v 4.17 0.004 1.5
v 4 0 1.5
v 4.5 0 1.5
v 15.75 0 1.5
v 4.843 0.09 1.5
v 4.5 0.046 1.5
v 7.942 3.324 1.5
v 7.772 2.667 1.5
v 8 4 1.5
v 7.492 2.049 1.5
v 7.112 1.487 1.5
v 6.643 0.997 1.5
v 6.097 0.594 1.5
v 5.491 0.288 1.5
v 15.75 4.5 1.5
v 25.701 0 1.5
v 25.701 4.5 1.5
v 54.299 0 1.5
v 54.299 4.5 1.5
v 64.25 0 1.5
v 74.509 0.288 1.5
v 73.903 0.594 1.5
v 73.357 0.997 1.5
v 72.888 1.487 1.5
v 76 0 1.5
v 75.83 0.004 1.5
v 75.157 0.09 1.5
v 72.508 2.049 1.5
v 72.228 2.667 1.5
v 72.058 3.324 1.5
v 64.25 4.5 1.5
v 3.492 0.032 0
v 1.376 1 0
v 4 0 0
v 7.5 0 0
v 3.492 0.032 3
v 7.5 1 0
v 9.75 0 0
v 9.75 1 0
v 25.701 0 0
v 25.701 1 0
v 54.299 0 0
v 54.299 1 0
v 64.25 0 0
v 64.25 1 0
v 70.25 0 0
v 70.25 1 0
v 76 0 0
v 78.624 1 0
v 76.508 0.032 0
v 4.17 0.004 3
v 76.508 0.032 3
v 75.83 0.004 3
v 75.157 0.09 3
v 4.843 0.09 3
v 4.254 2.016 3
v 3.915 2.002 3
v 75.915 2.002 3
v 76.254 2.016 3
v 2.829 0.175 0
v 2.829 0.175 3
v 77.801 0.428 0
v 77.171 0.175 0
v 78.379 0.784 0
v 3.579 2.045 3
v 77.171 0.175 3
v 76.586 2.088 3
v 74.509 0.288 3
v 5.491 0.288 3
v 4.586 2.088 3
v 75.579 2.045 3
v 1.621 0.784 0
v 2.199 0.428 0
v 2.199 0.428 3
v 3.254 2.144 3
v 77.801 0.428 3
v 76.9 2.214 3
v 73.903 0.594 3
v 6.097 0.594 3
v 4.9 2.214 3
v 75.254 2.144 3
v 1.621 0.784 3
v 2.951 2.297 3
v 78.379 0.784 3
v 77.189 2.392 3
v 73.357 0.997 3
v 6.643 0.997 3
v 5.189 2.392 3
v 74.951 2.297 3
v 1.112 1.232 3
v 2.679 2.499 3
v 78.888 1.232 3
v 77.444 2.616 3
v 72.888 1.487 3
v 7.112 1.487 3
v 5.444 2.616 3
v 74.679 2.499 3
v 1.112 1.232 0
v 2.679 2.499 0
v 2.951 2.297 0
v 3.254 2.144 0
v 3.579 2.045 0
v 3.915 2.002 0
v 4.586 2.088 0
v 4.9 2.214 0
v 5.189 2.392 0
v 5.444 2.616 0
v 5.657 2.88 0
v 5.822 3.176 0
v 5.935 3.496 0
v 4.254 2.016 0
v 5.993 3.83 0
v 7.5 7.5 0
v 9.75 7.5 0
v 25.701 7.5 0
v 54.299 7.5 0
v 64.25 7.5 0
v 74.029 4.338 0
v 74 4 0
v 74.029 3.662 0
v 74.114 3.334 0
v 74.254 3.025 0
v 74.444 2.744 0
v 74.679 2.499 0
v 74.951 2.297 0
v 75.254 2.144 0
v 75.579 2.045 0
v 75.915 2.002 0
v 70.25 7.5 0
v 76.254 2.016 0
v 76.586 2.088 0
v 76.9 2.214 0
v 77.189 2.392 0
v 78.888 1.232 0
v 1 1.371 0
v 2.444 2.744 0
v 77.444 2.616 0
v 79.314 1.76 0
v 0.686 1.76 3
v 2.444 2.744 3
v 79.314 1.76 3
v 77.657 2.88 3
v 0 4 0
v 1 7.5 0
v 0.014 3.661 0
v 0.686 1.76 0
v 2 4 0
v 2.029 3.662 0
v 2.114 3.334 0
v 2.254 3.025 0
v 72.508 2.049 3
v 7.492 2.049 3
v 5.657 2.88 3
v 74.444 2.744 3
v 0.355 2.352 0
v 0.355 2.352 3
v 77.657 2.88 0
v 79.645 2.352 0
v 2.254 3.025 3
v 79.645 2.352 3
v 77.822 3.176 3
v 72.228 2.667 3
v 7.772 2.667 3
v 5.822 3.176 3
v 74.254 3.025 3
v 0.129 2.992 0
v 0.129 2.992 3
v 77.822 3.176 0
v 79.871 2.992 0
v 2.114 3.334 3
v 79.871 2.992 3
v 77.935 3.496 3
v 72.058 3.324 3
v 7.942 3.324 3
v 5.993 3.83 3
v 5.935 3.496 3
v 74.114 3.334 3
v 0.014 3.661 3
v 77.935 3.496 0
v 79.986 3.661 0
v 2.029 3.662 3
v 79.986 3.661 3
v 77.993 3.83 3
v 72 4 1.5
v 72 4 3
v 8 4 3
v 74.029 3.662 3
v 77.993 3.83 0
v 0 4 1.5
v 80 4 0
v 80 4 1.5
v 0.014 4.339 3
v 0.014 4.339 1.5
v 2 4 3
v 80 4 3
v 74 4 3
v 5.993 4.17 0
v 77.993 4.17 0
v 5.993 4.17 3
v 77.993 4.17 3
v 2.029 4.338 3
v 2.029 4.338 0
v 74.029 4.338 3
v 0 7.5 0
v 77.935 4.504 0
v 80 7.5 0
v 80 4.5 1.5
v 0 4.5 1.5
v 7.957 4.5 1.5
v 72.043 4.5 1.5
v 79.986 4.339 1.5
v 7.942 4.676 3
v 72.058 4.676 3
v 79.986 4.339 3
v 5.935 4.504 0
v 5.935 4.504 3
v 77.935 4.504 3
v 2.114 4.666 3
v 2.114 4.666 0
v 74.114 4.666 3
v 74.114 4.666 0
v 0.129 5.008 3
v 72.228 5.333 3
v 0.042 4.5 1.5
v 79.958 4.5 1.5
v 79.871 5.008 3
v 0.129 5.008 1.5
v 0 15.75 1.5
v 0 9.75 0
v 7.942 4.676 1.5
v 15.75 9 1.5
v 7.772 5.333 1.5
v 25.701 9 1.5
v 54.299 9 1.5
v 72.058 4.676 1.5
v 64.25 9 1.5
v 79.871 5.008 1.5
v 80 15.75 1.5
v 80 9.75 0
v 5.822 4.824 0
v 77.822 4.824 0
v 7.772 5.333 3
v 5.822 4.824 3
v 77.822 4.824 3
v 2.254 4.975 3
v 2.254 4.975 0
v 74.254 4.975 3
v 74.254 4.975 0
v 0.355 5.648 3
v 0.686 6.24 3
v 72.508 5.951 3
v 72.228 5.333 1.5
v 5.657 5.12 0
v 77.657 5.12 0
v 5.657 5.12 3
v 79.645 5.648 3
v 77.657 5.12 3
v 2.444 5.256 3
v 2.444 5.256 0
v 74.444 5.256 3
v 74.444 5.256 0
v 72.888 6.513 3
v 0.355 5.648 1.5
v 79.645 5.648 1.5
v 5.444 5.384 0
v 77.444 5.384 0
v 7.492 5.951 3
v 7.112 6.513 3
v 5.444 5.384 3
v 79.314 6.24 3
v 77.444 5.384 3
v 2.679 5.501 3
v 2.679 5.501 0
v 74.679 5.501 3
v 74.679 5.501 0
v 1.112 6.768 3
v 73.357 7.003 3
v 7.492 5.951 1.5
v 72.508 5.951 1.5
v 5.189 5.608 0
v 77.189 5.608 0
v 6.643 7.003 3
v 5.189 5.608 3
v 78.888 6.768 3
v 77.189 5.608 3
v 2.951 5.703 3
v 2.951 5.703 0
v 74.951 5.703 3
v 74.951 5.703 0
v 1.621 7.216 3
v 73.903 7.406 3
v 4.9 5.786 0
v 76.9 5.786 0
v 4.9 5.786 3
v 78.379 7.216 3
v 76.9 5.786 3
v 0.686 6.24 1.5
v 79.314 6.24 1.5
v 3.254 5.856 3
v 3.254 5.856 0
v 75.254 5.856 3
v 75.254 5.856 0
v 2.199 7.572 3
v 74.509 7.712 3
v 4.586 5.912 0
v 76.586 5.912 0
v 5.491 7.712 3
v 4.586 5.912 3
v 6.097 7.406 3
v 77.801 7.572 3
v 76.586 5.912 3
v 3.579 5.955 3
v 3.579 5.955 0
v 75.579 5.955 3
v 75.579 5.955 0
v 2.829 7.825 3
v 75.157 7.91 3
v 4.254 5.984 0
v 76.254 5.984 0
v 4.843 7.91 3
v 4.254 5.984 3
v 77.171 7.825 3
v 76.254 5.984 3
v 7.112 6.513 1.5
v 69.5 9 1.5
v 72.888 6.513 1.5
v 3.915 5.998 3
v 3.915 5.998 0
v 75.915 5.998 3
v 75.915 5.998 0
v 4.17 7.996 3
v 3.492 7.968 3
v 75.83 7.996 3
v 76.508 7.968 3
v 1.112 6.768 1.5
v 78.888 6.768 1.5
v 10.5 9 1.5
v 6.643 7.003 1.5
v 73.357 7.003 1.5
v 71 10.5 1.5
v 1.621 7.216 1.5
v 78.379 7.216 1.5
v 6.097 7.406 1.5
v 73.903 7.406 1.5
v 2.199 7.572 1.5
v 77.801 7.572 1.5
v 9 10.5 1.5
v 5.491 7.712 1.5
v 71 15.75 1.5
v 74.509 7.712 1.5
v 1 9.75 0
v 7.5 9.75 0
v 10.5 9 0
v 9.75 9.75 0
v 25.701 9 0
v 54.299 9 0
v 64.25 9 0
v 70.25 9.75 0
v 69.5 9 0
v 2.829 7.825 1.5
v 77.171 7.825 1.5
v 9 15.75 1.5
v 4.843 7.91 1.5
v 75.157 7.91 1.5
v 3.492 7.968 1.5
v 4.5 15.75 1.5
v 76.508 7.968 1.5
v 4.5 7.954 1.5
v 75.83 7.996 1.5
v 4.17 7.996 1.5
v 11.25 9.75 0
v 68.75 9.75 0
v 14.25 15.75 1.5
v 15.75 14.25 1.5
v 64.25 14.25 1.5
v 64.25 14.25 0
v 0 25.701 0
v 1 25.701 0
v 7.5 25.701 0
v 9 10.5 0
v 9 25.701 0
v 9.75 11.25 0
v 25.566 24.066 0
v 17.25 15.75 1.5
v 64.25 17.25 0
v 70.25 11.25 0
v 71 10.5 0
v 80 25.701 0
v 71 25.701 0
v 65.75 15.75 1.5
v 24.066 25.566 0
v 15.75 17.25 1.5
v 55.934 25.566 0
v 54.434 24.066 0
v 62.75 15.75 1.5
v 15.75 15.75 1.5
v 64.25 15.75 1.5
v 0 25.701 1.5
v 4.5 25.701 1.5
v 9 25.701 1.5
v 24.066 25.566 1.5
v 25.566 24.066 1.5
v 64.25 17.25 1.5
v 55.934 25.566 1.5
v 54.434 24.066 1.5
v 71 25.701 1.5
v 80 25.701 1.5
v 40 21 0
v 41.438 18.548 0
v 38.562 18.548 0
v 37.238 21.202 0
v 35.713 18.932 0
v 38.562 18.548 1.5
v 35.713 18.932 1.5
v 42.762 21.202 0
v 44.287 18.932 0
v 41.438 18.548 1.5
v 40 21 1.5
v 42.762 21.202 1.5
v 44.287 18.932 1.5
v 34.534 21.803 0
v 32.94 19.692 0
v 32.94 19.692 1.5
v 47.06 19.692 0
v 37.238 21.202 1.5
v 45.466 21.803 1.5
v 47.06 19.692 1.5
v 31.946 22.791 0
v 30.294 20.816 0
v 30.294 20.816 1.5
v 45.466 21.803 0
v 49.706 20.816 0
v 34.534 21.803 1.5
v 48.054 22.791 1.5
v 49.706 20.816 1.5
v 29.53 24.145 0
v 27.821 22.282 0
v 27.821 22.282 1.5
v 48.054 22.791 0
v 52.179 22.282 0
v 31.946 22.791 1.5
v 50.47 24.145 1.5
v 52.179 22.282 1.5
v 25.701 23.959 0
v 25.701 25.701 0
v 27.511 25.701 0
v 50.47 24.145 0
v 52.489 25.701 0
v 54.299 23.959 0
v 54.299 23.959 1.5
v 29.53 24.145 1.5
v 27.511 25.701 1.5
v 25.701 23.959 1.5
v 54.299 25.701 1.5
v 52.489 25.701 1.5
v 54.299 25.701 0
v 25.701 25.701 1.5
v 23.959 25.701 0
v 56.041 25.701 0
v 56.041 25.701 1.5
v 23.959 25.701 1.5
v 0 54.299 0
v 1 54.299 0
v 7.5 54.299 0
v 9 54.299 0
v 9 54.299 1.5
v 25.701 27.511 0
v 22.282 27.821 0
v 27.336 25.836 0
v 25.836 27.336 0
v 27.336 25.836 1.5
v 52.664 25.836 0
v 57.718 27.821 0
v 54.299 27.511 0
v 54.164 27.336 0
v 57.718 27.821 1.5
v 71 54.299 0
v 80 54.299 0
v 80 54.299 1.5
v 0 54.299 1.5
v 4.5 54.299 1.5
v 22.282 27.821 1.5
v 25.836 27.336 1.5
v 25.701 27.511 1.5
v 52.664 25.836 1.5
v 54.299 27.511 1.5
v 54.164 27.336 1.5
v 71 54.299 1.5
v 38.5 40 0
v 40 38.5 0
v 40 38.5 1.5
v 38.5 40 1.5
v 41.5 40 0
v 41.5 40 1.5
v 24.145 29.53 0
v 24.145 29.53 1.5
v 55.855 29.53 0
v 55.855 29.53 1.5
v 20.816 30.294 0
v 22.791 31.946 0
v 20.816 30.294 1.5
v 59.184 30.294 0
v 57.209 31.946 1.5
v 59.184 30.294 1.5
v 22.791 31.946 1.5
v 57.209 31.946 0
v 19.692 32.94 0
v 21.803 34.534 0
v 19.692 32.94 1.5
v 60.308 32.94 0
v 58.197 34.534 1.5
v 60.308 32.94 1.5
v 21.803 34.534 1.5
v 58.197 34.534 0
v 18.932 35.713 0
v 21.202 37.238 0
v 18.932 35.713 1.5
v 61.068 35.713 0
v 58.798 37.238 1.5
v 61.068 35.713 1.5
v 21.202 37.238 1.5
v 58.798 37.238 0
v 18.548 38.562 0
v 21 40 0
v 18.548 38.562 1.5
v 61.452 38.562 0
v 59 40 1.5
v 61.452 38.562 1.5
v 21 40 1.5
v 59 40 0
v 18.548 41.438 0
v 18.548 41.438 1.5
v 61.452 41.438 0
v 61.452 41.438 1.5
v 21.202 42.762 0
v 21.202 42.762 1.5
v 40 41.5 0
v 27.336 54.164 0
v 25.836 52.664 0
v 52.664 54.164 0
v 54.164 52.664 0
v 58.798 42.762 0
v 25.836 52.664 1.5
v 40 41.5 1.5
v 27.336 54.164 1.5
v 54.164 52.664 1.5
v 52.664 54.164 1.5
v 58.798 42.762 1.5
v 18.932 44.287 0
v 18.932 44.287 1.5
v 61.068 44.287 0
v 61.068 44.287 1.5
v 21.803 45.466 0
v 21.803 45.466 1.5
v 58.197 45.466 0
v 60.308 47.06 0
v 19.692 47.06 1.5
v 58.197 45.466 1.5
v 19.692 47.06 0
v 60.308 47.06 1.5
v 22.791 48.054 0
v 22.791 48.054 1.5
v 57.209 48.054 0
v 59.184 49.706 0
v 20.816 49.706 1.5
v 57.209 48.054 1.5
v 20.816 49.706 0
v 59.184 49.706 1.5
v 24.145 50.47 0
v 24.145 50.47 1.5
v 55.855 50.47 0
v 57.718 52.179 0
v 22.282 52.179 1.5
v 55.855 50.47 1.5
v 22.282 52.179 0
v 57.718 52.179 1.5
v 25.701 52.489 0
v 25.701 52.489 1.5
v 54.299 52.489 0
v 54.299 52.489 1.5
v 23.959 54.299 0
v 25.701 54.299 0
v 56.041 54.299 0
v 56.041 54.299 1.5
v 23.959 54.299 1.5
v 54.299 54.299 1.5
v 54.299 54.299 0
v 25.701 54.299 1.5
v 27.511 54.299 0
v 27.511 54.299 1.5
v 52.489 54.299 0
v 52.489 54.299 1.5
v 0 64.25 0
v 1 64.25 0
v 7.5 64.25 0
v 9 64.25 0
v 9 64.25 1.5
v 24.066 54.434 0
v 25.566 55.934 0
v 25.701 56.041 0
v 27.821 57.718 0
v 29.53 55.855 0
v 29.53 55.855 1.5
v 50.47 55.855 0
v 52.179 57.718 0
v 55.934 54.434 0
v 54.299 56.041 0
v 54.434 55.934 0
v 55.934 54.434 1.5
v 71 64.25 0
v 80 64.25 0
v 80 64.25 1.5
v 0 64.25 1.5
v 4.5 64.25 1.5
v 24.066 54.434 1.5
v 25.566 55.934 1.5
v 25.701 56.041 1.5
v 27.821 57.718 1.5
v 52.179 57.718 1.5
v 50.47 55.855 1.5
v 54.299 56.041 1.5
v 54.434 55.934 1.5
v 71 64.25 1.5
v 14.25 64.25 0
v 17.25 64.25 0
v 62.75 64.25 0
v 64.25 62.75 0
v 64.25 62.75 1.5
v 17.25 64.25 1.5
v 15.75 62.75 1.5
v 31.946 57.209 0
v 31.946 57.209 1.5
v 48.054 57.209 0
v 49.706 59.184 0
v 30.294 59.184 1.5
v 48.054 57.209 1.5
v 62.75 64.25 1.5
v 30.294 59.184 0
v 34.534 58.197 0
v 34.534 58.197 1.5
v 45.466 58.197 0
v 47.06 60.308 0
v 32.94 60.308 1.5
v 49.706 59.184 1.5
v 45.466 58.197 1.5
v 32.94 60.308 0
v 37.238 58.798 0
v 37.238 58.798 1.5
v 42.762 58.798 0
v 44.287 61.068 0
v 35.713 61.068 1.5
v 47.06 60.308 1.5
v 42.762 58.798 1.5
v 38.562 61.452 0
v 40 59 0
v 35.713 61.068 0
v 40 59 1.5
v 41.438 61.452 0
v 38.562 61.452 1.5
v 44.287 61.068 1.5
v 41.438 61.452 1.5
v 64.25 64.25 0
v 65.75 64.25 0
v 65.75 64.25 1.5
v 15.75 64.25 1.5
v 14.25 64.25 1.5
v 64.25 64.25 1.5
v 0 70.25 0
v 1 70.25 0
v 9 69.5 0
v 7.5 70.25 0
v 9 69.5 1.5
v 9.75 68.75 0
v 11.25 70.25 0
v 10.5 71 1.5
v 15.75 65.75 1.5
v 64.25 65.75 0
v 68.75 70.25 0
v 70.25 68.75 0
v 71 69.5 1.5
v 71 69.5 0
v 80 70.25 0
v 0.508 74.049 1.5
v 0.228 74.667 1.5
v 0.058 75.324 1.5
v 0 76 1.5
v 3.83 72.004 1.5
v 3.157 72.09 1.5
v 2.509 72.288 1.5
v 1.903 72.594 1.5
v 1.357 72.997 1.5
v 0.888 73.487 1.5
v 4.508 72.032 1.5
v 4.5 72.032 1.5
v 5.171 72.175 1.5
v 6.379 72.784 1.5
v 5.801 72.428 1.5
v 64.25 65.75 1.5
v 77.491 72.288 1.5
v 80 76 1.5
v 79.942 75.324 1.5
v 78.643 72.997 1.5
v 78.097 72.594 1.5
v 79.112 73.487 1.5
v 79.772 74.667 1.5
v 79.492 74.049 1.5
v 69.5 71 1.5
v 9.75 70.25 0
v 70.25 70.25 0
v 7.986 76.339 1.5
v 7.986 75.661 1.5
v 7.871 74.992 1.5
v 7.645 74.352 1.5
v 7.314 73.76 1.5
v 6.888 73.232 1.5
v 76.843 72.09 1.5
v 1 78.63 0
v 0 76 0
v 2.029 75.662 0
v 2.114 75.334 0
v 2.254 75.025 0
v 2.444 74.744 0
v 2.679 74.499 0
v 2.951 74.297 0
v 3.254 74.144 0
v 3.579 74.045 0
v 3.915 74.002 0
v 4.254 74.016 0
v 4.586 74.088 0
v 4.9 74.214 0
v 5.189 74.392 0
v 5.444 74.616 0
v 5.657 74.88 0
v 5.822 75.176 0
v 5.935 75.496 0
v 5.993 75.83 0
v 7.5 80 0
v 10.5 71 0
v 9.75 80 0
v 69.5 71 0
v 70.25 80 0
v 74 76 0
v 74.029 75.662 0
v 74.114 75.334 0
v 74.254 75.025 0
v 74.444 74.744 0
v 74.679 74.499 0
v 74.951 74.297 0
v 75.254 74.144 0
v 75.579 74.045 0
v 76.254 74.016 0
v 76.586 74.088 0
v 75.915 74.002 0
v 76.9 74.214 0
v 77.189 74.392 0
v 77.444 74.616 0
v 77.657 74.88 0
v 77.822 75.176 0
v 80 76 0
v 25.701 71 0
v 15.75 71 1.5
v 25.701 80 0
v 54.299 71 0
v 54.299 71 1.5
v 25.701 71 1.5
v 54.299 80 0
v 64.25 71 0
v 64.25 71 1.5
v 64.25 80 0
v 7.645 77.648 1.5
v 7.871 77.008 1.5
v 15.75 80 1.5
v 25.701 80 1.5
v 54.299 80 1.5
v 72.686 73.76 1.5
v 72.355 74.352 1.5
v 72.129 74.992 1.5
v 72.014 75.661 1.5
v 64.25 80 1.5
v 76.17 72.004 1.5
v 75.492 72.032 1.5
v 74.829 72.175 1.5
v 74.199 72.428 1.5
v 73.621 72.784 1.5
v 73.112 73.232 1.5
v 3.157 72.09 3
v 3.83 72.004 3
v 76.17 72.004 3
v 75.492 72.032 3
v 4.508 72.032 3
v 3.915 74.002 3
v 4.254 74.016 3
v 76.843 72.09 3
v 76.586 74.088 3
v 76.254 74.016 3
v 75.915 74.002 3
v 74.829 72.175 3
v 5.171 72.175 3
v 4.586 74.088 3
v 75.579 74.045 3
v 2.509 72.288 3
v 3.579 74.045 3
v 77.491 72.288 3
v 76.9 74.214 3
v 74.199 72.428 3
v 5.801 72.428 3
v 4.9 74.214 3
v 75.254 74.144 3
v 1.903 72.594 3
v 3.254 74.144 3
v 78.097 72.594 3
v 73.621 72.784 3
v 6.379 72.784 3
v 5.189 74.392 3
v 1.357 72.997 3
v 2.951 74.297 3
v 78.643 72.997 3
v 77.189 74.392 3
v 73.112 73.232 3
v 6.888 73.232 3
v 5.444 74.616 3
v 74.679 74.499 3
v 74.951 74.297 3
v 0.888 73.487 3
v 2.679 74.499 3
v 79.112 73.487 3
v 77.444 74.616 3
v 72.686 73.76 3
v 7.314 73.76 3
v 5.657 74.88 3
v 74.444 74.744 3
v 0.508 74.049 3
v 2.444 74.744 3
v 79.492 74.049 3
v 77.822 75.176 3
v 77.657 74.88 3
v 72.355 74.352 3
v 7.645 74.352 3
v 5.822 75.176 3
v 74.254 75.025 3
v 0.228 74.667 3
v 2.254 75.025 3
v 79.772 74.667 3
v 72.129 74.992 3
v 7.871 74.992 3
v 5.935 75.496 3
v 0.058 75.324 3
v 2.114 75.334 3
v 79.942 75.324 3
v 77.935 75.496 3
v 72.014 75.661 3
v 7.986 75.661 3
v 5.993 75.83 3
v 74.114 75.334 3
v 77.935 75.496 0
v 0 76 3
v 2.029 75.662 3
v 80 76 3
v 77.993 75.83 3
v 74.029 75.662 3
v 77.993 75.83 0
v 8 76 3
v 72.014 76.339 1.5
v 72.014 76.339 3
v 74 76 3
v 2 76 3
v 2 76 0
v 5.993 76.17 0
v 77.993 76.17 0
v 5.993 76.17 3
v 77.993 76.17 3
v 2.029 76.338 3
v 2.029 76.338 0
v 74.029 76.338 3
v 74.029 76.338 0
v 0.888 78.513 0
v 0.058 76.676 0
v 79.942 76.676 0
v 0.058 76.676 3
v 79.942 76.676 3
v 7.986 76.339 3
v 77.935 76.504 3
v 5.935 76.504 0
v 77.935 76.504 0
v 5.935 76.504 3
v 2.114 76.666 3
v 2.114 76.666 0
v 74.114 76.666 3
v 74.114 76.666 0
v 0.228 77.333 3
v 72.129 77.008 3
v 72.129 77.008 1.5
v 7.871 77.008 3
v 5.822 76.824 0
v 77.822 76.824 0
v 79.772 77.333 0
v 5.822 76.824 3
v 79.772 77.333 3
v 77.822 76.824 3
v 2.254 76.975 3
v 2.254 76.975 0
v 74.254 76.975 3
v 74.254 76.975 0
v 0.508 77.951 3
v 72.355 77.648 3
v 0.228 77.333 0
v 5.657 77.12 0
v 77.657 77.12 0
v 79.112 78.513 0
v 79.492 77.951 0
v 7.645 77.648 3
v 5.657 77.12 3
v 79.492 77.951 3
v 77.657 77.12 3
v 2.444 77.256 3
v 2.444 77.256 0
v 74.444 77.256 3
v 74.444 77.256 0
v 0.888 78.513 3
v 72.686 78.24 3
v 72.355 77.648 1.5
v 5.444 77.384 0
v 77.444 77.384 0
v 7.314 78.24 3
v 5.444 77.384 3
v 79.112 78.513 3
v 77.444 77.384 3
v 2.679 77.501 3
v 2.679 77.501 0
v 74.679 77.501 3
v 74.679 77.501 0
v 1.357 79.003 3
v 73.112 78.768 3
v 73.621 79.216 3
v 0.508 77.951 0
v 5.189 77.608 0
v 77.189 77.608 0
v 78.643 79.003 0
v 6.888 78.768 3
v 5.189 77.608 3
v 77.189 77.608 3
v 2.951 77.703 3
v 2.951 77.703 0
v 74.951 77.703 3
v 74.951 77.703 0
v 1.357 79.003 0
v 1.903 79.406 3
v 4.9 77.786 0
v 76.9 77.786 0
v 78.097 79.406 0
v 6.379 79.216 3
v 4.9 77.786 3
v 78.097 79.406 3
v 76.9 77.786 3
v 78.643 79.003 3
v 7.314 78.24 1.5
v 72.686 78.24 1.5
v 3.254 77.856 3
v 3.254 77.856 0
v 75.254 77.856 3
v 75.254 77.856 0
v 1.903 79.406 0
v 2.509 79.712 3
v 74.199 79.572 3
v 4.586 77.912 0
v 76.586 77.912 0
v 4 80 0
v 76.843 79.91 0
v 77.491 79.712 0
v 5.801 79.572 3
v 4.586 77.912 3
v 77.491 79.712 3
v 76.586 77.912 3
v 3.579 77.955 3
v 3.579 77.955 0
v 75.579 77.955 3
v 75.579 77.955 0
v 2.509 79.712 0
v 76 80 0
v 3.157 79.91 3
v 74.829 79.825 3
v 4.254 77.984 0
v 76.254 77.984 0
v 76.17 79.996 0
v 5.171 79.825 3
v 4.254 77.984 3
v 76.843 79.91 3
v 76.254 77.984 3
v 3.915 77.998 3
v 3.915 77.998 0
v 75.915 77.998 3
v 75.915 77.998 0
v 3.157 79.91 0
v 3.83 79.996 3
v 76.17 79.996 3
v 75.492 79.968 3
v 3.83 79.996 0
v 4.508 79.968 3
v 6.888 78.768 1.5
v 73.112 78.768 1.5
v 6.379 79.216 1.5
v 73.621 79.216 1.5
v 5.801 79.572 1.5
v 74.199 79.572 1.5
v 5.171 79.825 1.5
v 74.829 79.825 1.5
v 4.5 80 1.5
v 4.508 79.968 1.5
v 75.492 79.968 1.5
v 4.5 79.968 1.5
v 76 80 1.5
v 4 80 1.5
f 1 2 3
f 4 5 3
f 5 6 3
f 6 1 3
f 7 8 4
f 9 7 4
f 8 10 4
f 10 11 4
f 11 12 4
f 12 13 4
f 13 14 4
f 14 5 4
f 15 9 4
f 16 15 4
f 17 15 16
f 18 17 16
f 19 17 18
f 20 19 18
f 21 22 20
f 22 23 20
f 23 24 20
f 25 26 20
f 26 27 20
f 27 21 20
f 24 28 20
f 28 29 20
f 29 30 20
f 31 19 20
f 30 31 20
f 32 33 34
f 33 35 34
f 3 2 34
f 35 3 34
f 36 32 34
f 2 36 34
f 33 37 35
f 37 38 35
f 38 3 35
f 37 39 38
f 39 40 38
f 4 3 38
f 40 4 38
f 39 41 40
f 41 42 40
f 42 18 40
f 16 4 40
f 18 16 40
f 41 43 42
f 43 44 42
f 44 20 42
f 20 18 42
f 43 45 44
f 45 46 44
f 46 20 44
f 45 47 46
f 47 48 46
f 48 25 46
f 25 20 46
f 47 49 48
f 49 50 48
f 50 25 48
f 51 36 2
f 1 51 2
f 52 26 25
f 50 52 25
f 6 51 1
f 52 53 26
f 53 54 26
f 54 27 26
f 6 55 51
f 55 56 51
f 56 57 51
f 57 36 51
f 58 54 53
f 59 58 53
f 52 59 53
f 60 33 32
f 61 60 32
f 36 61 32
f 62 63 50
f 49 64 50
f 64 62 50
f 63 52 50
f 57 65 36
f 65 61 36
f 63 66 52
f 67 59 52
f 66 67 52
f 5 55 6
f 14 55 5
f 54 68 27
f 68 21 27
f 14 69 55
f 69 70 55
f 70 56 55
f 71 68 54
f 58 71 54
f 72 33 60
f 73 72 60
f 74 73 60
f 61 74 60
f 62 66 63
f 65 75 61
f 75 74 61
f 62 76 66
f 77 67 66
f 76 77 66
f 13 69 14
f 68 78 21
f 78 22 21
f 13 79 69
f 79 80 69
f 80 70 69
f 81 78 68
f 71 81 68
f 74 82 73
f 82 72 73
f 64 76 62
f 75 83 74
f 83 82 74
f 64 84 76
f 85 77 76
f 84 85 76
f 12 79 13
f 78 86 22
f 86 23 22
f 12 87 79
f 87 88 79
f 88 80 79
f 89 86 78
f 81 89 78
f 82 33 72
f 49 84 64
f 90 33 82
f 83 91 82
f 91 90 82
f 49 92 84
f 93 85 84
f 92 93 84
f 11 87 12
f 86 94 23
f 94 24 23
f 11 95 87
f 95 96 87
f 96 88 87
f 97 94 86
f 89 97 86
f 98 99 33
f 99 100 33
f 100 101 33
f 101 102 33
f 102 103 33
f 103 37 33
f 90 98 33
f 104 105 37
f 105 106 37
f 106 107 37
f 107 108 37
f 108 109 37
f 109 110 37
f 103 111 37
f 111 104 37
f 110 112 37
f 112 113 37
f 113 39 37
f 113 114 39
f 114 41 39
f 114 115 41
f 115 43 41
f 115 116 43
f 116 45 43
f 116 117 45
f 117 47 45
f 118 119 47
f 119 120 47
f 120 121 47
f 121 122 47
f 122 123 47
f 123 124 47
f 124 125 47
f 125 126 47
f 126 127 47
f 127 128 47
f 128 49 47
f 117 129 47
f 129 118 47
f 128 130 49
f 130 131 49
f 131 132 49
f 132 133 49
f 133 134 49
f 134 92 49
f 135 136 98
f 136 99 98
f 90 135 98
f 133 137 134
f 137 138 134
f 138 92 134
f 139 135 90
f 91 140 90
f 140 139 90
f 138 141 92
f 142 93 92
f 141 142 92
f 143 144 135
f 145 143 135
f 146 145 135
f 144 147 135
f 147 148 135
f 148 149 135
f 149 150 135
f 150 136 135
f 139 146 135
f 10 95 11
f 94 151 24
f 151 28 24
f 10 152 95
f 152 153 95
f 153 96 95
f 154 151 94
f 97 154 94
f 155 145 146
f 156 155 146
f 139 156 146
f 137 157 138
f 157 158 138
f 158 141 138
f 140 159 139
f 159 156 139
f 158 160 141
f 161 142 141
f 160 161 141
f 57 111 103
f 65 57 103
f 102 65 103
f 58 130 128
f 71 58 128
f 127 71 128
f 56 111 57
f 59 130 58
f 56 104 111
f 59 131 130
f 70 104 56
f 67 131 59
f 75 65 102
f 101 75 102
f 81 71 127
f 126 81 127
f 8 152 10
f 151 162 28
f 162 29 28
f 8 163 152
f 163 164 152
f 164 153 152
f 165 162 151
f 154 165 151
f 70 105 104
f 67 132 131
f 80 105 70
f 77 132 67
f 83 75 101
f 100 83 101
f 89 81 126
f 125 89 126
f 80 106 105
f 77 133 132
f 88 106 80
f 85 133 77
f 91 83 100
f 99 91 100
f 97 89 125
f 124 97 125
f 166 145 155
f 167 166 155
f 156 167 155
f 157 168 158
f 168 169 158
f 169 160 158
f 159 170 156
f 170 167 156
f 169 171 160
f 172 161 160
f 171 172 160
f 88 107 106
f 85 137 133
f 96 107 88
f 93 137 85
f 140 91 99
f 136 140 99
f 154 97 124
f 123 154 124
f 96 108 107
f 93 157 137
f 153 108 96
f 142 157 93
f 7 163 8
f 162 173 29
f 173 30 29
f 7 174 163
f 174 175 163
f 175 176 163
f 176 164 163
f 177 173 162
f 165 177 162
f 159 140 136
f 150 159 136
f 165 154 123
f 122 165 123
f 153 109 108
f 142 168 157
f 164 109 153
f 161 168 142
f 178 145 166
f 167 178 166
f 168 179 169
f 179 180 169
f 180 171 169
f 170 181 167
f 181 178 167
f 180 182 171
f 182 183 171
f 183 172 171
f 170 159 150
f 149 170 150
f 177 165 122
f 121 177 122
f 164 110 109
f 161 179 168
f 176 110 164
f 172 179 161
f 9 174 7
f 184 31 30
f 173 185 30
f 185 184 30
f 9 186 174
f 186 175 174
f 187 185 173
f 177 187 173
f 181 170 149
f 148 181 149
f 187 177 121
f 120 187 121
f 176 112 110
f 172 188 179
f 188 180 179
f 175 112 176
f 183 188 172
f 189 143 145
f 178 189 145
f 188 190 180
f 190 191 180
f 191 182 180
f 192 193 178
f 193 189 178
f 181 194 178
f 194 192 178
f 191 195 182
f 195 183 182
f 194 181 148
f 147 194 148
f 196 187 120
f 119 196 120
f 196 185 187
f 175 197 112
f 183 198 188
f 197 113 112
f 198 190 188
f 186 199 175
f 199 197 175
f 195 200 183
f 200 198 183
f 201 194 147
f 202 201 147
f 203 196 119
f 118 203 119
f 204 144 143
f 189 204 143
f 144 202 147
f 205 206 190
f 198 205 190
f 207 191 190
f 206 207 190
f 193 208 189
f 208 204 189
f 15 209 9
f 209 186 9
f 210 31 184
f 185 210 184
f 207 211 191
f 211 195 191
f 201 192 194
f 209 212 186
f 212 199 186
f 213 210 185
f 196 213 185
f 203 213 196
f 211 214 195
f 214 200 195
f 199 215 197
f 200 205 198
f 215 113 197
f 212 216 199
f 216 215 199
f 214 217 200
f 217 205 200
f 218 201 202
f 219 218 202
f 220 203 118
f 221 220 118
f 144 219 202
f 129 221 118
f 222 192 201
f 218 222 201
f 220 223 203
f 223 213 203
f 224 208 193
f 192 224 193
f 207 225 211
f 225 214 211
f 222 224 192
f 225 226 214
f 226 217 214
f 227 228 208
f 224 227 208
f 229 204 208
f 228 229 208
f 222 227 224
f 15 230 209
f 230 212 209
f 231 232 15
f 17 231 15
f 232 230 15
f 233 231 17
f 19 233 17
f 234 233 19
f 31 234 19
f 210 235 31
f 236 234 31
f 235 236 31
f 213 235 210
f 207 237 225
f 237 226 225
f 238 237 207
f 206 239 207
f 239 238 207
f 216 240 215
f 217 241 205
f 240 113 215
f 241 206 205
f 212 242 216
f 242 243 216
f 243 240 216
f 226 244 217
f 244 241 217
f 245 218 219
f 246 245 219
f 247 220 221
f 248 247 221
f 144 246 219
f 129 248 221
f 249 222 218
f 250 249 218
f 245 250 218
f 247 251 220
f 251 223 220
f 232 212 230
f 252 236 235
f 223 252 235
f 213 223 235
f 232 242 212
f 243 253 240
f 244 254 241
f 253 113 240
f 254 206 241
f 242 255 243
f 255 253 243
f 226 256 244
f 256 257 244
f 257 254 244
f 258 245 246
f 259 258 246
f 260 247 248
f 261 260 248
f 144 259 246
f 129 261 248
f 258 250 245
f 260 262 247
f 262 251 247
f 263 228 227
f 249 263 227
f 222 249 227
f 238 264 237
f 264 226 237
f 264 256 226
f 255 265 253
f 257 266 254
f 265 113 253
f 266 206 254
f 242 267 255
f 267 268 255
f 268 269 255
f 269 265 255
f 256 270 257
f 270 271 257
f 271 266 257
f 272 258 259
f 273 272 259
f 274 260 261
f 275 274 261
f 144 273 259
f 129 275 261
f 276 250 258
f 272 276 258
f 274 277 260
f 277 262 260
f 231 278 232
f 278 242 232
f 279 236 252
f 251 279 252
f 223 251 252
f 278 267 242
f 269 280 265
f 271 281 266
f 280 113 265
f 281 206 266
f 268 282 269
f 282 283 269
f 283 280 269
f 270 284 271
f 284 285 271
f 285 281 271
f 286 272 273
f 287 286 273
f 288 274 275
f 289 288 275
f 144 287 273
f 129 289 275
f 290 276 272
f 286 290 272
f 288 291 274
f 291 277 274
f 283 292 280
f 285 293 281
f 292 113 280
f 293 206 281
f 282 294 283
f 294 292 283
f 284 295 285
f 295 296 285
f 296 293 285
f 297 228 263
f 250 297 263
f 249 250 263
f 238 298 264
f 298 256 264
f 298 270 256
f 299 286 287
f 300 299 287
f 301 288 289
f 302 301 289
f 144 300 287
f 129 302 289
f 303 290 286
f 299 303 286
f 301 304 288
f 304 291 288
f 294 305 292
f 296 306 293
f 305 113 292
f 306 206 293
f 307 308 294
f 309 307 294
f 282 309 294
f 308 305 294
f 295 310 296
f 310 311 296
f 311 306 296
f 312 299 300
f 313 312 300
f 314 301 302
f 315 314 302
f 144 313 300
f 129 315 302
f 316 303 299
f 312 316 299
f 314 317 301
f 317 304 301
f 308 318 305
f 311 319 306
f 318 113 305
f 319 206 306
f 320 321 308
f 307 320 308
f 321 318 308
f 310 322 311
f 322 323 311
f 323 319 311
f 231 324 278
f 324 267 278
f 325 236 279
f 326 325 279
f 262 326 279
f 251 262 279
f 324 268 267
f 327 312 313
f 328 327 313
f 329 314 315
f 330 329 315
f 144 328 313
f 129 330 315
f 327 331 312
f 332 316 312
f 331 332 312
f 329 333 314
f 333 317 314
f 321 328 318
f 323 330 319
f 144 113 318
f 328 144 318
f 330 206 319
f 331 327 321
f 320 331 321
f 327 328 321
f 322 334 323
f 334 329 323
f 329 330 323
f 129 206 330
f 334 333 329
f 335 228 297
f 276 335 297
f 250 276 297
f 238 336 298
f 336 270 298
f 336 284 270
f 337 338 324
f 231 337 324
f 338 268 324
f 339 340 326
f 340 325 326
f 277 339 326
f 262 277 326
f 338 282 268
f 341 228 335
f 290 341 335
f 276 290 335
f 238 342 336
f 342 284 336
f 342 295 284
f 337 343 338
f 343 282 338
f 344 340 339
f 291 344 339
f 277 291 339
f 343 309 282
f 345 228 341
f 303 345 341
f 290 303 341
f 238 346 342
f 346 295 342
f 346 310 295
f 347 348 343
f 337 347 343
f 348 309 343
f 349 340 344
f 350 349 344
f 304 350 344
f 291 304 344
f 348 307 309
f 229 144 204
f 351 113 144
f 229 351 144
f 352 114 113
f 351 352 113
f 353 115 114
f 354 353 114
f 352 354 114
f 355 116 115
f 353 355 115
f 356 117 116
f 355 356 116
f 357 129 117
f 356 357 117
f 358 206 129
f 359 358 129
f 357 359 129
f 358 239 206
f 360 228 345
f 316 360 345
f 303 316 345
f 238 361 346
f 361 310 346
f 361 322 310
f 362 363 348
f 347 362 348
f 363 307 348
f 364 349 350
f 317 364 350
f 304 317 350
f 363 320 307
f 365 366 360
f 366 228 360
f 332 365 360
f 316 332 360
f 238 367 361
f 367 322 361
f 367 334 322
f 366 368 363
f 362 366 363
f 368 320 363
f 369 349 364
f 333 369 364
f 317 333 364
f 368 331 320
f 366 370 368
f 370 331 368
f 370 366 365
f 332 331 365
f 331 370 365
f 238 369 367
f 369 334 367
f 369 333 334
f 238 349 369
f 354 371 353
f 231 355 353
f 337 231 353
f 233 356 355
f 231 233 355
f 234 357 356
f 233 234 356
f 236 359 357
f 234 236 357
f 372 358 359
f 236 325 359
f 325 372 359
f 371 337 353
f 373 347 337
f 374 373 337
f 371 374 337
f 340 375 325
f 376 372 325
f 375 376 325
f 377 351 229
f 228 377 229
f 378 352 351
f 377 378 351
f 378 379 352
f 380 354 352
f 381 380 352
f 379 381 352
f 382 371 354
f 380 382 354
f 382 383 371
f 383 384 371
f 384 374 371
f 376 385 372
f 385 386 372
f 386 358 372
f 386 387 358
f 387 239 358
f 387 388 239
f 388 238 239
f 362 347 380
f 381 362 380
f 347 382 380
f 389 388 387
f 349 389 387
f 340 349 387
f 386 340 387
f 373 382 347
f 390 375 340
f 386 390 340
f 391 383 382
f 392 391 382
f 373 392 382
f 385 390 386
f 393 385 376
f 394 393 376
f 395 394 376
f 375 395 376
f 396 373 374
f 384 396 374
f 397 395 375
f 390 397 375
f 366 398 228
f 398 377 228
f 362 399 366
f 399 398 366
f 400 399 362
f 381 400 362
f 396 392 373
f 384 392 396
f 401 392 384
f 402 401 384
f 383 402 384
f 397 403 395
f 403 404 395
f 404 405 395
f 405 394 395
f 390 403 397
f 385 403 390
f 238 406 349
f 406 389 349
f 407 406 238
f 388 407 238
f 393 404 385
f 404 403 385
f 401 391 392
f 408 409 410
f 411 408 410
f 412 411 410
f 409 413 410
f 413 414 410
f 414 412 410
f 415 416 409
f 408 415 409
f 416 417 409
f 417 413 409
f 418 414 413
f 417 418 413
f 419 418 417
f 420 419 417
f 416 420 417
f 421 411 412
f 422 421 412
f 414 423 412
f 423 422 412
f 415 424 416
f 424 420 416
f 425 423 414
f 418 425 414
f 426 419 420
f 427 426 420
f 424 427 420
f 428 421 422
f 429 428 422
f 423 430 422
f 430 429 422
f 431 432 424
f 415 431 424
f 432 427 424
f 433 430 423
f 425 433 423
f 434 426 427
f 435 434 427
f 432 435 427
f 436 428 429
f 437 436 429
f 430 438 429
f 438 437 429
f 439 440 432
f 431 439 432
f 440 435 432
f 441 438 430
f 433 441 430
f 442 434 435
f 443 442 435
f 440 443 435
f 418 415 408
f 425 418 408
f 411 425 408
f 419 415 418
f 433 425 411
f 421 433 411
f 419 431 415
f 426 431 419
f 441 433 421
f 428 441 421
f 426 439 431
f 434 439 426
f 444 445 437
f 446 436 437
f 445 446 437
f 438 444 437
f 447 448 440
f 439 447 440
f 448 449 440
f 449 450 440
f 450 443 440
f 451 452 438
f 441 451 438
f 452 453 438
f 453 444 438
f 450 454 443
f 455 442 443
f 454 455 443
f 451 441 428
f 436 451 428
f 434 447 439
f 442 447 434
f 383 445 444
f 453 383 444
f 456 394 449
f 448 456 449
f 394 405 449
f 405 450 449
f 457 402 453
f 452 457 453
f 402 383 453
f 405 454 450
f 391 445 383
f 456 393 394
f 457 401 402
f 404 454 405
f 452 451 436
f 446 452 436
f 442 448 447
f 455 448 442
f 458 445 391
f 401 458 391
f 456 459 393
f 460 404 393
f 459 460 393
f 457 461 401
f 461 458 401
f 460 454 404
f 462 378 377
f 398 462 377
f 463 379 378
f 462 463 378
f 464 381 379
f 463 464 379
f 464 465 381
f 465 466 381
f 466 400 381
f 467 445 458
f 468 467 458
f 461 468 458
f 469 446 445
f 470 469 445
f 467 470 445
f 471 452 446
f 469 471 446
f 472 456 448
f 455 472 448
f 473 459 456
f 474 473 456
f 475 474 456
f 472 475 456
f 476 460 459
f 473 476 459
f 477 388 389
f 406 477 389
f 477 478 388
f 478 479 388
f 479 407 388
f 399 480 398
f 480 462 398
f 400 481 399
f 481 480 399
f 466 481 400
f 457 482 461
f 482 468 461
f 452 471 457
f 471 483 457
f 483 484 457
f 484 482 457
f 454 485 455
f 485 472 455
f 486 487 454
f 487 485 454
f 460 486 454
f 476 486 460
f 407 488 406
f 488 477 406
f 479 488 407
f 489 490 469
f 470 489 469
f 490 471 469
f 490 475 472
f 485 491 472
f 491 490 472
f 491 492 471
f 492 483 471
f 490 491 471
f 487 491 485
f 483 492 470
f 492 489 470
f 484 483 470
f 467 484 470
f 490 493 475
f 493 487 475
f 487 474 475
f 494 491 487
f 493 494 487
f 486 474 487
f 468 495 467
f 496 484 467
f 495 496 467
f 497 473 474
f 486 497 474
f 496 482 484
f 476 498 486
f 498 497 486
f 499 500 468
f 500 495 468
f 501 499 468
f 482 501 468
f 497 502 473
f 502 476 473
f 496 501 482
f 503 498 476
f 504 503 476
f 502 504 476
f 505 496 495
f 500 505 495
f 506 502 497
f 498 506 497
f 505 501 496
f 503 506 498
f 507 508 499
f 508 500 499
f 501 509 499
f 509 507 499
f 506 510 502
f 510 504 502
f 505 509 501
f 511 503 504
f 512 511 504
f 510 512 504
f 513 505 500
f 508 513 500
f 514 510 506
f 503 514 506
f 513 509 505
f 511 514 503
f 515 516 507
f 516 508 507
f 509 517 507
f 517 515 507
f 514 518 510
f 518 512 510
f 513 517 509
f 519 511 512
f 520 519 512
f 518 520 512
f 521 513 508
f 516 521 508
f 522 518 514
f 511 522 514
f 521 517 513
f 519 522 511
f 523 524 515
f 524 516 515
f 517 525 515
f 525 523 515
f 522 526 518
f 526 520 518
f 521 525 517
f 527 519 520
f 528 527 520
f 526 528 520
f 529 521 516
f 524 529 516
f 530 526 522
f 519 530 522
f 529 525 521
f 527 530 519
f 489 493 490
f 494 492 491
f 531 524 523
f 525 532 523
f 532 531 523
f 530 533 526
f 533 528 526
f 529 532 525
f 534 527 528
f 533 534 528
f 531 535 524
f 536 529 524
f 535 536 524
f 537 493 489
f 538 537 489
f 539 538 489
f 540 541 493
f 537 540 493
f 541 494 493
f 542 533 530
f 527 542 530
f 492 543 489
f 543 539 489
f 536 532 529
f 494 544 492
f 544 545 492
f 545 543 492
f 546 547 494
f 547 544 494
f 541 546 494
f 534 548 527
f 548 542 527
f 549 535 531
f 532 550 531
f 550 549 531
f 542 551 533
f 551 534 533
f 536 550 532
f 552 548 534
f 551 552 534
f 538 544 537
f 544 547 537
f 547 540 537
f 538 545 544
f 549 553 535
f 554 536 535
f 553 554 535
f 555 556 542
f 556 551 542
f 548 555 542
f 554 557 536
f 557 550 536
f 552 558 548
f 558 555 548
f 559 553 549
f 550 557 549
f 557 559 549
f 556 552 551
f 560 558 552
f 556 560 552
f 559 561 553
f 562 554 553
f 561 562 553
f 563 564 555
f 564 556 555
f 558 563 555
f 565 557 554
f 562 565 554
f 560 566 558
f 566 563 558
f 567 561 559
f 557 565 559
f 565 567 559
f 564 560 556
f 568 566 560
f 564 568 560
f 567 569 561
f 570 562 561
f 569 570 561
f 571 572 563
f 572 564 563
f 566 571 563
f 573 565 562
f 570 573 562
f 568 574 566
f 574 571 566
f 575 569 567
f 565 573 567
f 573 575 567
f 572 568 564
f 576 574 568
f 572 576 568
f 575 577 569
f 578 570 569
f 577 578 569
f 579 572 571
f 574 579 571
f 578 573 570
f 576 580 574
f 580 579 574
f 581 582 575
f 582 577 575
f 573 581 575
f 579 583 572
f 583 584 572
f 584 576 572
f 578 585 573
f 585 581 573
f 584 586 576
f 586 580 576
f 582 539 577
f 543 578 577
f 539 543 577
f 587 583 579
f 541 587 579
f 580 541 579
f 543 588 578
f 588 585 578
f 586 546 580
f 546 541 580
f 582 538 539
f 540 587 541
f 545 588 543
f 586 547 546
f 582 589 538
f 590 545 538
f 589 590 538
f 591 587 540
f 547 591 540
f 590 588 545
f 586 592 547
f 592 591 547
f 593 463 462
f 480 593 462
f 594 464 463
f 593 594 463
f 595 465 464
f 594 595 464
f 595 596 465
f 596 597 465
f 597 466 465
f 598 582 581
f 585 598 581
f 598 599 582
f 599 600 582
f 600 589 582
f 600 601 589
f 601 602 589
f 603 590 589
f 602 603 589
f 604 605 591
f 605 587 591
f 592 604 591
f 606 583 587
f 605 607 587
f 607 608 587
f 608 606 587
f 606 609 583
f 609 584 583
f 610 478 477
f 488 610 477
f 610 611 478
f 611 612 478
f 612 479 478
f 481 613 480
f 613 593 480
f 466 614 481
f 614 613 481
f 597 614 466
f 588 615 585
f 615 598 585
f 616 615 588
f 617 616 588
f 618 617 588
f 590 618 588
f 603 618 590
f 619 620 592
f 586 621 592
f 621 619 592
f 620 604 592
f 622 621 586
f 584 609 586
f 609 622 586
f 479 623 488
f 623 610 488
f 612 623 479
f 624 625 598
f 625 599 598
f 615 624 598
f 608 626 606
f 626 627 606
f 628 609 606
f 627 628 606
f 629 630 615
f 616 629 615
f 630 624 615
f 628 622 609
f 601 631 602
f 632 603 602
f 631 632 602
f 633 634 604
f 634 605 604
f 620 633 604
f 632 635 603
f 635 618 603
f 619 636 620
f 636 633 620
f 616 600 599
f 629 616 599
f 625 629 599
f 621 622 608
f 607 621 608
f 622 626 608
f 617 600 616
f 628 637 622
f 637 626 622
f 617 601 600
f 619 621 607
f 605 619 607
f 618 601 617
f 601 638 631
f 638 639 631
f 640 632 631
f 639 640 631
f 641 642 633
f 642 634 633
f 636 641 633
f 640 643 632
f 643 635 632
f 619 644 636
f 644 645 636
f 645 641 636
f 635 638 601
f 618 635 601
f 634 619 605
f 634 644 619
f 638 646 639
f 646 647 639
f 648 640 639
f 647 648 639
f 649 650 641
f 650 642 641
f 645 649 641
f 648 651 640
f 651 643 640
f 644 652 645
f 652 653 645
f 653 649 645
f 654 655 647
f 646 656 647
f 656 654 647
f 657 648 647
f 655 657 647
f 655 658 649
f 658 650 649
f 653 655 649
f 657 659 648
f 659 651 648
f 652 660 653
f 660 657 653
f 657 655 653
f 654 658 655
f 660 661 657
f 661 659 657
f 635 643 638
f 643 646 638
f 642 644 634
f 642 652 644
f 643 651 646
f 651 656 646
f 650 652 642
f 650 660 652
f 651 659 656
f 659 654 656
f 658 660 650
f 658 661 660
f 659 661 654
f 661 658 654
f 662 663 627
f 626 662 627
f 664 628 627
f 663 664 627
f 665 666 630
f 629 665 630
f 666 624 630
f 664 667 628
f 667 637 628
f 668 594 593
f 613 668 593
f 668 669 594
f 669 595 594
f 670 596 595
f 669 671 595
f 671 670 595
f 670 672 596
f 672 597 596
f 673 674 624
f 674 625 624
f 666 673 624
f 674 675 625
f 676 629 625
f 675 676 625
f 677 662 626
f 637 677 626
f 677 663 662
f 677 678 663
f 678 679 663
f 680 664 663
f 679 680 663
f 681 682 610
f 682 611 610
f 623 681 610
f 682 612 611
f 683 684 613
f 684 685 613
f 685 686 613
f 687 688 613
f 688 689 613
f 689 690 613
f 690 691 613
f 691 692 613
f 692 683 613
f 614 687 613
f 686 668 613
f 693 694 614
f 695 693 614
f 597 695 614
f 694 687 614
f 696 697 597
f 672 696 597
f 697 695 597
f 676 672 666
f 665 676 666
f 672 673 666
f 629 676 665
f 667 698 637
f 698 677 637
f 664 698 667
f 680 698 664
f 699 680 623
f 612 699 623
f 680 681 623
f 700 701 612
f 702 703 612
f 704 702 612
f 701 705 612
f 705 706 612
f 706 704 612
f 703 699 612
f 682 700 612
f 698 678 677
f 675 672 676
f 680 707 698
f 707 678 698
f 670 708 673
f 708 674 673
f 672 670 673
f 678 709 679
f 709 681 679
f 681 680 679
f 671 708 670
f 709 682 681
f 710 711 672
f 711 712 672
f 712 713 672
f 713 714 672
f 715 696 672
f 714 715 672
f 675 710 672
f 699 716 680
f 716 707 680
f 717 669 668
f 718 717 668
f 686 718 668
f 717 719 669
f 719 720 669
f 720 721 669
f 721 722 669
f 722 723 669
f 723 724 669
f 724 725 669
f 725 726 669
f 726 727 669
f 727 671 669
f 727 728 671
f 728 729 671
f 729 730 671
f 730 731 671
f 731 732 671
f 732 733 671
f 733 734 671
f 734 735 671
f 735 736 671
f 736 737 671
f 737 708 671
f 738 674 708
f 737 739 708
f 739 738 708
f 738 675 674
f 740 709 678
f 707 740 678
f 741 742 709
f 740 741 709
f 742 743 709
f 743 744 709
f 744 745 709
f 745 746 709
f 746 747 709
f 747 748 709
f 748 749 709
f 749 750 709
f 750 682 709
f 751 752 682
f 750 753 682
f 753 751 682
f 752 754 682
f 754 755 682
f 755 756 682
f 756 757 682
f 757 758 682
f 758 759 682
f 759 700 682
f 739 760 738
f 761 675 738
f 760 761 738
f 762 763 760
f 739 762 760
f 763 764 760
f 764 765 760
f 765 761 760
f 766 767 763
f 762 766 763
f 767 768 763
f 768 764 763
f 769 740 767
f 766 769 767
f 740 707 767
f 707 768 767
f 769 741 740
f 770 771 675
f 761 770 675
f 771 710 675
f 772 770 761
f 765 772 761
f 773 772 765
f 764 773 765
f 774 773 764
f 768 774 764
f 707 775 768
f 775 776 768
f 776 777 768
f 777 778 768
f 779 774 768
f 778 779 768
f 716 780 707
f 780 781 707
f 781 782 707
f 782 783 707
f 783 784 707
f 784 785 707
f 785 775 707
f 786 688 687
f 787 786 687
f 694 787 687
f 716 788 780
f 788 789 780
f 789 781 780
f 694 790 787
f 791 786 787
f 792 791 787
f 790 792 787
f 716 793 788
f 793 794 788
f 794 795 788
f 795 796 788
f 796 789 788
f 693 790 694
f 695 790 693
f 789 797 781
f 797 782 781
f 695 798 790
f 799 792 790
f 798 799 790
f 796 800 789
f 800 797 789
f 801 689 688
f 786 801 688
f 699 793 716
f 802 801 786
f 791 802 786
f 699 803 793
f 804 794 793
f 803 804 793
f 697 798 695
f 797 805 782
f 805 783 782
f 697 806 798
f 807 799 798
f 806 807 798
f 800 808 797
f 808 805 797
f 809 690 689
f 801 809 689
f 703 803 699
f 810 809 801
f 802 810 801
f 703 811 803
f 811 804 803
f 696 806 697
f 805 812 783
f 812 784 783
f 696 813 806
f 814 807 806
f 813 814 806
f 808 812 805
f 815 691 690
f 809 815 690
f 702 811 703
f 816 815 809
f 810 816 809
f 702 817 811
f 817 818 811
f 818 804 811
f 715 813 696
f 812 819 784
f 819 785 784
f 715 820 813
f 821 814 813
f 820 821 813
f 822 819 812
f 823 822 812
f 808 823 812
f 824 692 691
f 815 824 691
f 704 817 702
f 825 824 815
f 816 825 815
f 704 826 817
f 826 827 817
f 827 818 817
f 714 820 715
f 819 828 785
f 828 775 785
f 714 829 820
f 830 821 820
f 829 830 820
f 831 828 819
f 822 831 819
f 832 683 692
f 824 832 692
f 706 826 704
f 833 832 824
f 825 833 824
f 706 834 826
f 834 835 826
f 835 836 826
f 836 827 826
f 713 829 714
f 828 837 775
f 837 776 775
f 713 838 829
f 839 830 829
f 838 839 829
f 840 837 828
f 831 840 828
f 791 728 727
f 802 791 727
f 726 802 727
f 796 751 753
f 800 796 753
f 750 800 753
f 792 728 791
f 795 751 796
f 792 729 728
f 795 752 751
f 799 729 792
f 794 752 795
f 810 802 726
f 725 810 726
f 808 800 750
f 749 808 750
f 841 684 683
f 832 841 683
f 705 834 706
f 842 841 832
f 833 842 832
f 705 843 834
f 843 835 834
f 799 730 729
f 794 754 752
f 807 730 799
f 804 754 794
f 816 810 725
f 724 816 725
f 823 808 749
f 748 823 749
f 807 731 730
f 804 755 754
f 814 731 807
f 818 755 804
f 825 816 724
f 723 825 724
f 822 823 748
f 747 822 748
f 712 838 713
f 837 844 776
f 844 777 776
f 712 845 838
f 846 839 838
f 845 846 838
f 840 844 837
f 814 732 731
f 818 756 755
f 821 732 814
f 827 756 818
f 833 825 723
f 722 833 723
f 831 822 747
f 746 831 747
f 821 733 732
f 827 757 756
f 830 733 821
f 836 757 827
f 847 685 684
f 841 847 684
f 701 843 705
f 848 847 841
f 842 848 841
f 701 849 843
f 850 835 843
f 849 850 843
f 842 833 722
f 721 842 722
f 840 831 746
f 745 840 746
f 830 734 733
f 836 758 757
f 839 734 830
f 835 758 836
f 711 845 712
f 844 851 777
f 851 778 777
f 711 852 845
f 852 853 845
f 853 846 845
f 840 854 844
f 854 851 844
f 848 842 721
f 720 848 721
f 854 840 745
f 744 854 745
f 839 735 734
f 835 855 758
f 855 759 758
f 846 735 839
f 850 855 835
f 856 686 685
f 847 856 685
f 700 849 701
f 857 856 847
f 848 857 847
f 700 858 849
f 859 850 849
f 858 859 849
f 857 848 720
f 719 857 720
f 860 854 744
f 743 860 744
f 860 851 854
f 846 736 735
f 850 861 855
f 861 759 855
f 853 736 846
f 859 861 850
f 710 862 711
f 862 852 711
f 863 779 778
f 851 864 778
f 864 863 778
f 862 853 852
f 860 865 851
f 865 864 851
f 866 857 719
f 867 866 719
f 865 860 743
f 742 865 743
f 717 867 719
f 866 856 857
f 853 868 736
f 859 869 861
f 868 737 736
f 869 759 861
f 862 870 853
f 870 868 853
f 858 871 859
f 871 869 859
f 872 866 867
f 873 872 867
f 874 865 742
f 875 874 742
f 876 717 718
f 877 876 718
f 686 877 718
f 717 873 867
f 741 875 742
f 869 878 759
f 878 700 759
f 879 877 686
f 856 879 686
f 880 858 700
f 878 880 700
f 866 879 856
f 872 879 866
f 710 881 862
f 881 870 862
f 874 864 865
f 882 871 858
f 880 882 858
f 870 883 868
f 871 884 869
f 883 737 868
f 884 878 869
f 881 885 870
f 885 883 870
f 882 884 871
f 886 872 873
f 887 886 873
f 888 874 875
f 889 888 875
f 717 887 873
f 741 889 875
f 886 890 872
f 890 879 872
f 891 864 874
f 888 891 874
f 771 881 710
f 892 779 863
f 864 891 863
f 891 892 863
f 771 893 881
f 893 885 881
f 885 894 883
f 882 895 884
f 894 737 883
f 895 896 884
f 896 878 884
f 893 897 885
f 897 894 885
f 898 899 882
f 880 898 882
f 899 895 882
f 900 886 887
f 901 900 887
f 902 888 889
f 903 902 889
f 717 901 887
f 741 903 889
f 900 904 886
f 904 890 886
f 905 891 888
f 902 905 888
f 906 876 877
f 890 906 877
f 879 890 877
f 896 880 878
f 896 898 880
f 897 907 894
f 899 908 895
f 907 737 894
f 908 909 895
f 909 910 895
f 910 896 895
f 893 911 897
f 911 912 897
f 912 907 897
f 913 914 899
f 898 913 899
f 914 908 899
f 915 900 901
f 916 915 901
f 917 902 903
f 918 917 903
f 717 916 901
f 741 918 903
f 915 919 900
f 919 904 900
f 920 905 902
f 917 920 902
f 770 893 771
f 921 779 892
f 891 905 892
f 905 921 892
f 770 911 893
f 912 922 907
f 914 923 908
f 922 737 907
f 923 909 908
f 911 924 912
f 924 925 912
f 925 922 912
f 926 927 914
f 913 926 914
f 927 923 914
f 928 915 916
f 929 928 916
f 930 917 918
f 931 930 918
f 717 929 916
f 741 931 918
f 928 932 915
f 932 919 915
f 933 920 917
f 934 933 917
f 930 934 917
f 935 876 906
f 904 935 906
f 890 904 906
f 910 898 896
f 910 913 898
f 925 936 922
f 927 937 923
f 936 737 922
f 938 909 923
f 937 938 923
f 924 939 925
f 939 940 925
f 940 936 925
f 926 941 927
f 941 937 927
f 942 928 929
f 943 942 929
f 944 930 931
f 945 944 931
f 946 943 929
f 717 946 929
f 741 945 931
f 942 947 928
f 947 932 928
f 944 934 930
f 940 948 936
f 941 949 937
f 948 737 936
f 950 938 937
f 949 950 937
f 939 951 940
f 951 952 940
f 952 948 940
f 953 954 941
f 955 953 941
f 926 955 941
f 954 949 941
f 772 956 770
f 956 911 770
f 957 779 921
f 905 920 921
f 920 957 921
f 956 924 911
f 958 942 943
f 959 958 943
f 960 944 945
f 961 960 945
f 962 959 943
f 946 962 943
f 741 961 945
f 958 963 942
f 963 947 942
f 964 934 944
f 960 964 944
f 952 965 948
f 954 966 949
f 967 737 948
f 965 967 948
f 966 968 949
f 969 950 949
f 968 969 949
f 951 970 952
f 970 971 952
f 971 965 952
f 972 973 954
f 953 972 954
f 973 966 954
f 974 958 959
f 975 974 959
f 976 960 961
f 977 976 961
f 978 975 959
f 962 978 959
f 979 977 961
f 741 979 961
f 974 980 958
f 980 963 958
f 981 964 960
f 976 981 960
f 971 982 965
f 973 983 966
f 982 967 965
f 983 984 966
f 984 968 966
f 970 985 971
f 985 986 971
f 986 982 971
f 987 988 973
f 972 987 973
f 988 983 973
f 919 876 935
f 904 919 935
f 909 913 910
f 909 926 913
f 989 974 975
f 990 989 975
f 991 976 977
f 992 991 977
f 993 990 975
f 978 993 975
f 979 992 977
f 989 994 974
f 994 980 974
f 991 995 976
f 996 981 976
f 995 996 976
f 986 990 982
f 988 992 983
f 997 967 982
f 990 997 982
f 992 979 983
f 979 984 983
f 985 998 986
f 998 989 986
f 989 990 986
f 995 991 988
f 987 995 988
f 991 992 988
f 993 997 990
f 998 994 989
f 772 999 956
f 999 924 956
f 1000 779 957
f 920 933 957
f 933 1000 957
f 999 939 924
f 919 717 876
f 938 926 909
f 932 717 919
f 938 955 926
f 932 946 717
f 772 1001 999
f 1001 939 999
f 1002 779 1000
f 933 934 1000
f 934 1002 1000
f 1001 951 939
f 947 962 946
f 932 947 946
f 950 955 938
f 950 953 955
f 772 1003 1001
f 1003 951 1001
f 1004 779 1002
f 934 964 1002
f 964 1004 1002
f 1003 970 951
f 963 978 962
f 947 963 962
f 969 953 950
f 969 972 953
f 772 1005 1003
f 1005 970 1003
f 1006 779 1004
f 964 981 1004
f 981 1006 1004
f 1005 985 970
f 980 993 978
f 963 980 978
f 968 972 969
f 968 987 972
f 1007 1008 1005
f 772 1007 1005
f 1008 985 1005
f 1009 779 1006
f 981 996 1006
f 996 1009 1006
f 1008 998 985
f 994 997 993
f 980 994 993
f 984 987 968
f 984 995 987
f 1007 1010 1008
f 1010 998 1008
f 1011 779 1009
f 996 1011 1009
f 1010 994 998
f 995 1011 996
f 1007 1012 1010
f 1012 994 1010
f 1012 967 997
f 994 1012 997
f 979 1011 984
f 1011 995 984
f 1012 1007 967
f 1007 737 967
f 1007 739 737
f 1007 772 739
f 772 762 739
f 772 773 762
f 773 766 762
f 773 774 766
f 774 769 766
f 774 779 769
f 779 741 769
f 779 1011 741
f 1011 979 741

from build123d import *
from build123d.topology import SkipClean

# Parameters (mm, degrees)
SKETCH1_W             = 80
SKETCH1_H             = 80
BOSS_EXTRUDE1_DEPTH   = 1.5
FILLET1_R             = 4
BOSS_EXTRUDE2_START   = 1.5
SKETCH2_R             = 4
BOSS_EXTRUDE2_DEPTH   = 1.5
F_4_0MM_DOWEL_HOLE1_D = 4
CUT_EXTRUDE1_DEPTH    = 1.5


with BuildPart() as part:
    # Sketch1 → Boss-Extrude1 (new body)
    with BuildSketch(Plane.XY):
        with Locations((40, 40)):
            Rectangle(SKETCH1_W, SKETCH1_H)
    extrude(amount=BOSS_EXTRUDE1_DEPTH)

    # Fillet1
    fillet1_edges = [part.edges().sort_by_distance(p)[0] for p in [
        (0, 0, 0.75),
        (80, 0, 0.75),
        (80, 80, 0.75),
        (0, 80, 0.75),
    ]]
    fillet(fillet1_edges, radius=FILLET1_R)

    # Sketch2 → Boss-Extrude2 (add)
    with SkipClean():  # the faces are left unmerged after this step: merging them gives an invalid solid
        with BuildSketch(Plane.XY.offset(1.5).offset(BOSS_EXTRUDE2_START)):
            with Locations((4, 76)):
                Circle(SKETCH2_R)
            with Locations((76, 76)):
                Circle(SKETCH2_R)
            with Locations((4, 4)):
                Circle(SKETCH2_R)
            with Locations((76, 4)):
                Circle(SKETCH2_R)
        extrude(amount=-BOSS_EXTRUDE2_DEPTH)

    # Ø4.0mm Dowel Hole1 (through all)
    with Locations(Plane(origin=(0, 0, 0), x_dir=(-1, 0, 0), z_dir=(0, 0, -1))):
        with Locations((-4, 4), (-76, 4), (-76, 76), (-4, 76)):
            Hole(F_4_0MM_DOWEL_HOLE1_D / 2)

    # Sketch5 → Cut-Extrude1 (cut)
    with SkipClean():  # the faces are left unmerged after this step: merging them gives an invalid solid
        with BuildSketch(Plane(origin=(0, 0, 0), x_dir=(-1, 0, 0), z_dir=(0, 0, -1))):
            with BuildLine():
                Line((-10.5, 71), (-69.5, 71))
                Line((-69.5, 71), (-54.434284639, 55.934284639))
                ThreePointArc((-54.434284639, 55.934284639), (-40, 61.5), (-25.565715361, 55.934284639))
                Line((-25.565715361, 55.934284639), (-10.5, 71))
            make_face()
            with BuildLine():
                Line((-55.934284639, 54.434284639), (-71, 69.5))
                Line((-71, 69.5), (-71, 10.5))
                Line((-71, 10.5), (-55.934284639, 25.565715361))
                ThreePointArc((-55.934284639, 25.565715361), (-61.5, 40), (-55.934284639, 54.434284639))
            make_face()
            with BuildLine():
                Line((-9, 10.5), (-9, 69.5))
                Line((-9, 69.5), (-24.065715361, 54.434284639))
                ThreePointArc((-24.065715361, 54.434284639), (-18.5, 40), (-24.065715361, 25.565715361))
                Line((-24.065715361, 25.565715361), (-9, 10.5))
            make_face()
            with BuildLine():
                Line((-54.434284639, 24.065715361), (-69.5, 9))
                Line((-69.5, 9), (-10.5, 9))
                Line((-10.5, 9), (-25.565715361, 24.065715361))
                ThreePointArc((-25.565715361, 24.065715361), (-40, 18.5), (-54.434284639, 24.065715361))
            make_face()
            with BuildLine():
                Line((-54.164078425, 27.335921575), (-41.5, 40))
                Line((-41.5, 40), (-54.164078425, 52.664078425))
                ThreePointArc((-54.164078425, 52.664078425), (-59, 40), (-54.164078425, 27.335921575))
            make_face()
            with BuildLine():
                Line((-52.664078425, 54.164078425), (-40, 41.5))
                Line((-40, 41.5), (-27.335921575, 54.164078425))
                ThreePointArc((-27.335921575, 54.164078425), (-40, 59), (-52.664078425, 54.164078425))
            make_face()
            with BuildLine():
                Line((-25.835921575, 52.664078425), (-38.5, 40))
                Line((-38.5, 40), (-25.835921575, 27.335921575))
                ThreePointArc((-25.835921575, 27.335921575), (-21, 40), (-25.835921575, 52.664078425))
            make_face()
            with BuildLine():
                Line((-40, 38.5), (-52.664078425, 25.835921575))
                ThreePointArc((-52.664078425, 25.835921575), (-40, 21), (-27.335921575, 25.835921575))
                Line((-27.335921575, 25.835921575), (-40, 38.5))
            make_face()
        extrude(amount=-CUT_EXTRUDE1_DEPTH, mode=Mode.SUBTRACT)
    add(part.part.scale(1), mode=Mode.REPLACE)  # the faces are merged on a copy


solid = part.part
